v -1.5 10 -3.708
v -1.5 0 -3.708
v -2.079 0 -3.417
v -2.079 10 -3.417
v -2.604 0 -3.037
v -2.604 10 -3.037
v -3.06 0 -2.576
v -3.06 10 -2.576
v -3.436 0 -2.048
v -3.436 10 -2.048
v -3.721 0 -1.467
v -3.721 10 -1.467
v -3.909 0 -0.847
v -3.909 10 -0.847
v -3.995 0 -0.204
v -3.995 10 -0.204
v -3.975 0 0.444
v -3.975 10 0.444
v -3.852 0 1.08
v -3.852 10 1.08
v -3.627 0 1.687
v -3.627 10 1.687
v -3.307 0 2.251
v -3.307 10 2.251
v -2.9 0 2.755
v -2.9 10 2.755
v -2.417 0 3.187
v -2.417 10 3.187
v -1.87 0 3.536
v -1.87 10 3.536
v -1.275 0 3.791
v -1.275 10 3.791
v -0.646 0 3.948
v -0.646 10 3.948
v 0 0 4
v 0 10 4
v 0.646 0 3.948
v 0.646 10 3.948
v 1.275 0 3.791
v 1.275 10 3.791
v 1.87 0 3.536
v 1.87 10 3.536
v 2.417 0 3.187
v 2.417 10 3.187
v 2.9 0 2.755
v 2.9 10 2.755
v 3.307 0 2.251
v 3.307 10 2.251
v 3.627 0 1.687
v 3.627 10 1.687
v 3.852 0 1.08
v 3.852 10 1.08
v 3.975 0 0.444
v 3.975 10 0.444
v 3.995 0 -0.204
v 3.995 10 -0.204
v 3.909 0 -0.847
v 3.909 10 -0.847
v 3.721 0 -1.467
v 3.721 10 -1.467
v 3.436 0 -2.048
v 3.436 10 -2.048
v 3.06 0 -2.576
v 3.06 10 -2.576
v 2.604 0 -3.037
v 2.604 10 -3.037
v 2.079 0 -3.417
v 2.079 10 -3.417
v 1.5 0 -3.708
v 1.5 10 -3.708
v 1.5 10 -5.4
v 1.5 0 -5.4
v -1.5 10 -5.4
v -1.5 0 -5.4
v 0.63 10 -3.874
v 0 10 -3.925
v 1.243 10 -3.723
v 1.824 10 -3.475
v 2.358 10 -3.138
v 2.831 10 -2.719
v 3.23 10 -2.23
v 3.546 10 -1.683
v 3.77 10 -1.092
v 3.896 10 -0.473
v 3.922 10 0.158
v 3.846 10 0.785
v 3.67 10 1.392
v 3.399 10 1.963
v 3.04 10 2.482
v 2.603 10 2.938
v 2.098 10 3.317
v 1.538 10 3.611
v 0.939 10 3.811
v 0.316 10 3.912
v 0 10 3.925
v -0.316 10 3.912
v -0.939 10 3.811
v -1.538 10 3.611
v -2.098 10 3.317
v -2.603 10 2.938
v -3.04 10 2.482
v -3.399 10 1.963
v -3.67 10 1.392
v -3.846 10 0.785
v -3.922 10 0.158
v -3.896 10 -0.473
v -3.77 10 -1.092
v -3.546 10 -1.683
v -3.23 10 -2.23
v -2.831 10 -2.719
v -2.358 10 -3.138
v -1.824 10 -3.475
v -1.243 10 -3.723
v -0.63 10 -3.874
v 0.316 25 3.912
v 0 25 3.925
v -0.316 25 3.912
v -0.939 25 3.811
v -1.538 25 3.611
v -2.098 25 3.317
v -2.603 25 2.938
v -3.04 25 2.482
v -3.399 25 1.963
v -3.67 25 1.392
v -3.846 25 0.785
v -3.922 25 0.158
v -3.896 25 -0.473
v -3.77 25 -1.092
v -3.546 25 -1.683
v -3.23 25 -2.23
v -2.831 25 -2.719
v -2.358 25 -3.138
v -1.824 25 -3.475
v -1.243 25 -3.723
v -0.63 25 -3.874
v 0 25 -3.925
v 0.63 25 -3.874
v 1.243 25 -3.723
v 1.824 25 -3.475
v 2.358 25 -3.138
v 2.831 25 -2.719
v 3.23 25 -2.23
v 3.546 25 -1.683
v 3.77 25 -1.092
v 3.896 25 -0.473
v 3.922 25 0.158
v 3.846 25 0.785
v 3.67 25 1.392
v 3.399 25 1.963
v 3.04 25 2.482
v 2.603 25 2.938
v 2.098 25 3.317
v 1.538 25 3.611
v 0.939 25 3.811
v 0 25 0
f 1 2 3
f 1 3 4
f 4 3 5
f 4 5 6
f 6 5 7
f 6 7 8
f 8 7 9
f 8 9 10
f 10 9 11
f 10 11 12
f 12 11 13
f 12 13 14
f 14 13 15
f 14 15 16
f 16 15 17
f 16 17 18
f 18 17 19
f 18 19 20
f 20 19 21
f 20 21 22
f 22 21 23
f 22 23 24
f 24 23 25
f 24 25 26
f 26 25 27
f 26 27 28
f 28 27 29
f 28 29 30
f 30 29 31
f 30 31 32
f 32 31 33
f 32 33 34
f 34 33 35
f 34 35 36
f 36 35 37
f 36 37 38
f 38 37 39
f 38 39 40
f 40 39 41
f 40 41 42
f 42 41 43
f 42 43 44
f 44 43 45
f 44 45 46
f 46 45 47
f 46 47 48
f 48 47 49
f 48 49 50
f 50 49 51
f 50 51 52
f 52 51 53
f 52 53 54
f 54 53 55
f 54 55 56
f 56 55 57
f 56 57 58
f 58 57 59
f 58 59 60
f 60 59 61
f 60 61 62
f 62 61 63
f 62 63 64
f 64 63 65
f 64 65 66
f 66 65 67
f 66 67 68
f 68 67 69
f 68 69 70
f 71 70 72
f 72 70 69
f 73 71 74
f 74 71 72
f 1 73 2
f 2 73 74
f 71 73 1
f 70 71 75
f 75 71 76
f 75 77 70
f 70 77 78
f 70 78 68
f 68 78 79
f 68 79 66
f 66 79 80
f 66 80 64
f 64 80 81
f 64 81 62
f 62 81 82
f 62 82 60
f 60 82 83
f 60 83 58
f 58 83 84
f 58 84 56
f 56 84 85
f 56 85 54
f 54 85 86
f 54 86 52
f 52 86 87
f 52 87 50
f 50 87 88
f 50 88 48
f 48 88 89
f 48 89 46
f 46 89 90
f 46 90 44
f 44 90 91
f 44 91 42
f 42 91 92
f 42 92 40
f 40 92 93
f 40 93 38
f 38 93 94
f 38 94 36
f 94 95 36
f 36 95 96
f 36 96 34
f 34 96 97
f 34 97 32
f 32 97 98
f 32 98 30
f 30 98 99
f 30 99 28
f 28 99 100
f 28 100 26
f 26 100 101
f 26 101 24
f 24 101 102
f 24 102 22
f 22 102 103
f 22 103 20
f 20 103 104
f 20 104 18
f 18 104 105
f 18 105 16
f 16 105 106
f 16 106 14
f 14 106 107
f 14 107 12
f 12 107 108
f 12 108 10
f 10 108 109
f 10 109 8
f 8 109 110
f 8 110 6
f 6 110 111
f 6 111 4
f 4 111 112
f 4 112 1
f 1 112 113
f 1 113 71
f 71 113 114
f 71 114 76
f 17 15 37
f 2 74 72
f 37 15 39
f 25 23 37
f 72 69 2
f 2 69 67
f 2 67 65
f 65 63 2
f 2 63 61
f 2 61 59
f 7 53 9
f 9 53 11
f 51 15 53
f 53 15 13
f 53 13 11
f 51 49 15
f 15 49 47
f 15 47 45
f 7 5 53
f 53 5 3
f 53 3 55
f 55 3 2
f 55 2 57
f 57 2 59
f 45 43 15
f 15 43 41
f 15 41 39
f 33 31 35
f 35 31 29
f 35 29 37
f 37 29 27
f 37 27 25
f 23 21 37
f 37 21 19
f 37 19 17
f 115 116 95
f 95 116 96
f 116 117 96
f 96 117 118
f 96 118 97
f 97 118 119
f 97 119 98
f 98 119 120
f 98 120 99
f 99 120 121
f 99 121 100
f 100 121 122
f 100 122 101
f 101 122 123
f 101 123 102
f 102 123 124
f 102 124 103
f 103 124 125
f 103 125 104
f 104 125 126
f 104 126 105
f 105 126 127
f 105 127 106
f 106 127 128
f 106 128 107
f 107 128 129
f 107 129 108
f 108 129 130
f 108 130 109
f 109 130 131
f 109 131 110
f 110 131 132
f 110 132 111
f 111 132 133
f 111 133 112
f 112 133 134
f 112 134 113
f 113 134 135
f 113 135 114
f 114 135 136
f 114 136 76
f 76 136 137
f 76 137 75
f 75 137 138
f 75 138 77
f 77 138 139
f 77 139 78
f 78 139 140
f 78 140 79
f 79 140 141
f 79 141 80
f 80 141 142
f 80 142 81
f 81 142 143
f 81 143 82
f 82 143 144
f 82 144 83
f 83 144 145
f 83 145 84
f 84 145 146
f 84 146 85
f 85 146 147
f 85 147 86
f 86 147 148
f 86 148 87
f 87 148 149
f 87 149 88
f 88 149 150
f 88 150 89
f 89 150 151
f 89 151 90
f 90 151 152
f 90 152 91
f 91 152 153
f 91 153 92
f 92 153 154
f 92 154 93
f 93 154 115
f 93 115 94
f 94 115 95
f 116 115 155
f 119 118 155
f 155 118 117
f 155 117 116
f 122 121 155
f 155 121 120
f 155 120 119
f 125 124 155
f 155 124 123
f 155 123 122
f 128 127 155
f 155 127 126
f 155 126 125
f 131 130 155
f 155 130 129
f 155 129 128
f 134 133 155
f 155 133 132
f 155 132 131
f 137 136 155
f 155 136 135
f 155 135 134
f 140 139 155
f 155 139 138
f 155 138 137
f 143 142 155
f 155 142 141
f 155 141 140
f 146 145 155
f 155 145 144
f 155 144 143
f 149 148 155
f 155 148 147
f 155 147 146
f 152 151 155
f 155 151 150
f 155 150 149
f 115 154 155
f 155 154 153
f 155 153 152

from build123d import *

# Parameters (mm, degrees)
EXTRUDE_1_DEPTH = 10
SKETCH_3_R      = 3.925
EXTRUDE_2_DEPTH = 15


with BuildPart() as part:
    # 草图1 → 凸台-拉伸1 (new body)
    with BuildSketch(Plane(origin=(0, 0, 0), x_dir=(1, 0, 0), z_dir=(0, 1, 0))):
        with BuildLine():
            ThreePointArc((1.5, 3.708099244), (0, 4), (-1.5, 3.708099244))
            Line((-1.5, 3.708099244), (-1.5, 0))
            Line((-1.5, 0), (1.5, 0))
            Line((1.5, 0), (1.5, 3.708099244))
        make_face()
        with BuildLine():
            Line((-1.5, 0), (-1.5, 3.708099244))
            ThreePointArc((-1.5, 3.708099244), (-2.236067977, -3.31662479), (4, 0))
            ThreePointArc((4, 0), (3.31662479, 2.236067977), (1.5, 3.708099244))
            Line((1.5, 3.708099244), (1.5, 0))
            Line((1.5, 0), (-1.5, 0))
        make_face()
        with BuildLine():
            ThreePointArc((1.5, 3.708099244), (0, 4), (-1.5, 3.708099244))
            Line((-1.5, 3.708099244), (-1.5, 0))
            Line((-1.5, 0), (1.5, 0))
            Line((1.5, 0), (1.5, 3.708099244))
        make_face()
        with BuildLine():
            Line((-1.5, 0), (-1.5, 3.708099244))
            ThreePointArc((-1.5, 3.708099244), (-2.236067977, -3.31662479), (4, 0))
            ThreePointArc((4, 0), (3.31662479, 2.236067977), (1.5, 3.708099244))
            Line((1.5, 3.708099244), (1.5, 0))
            Line((1.5, 0), (-1.5, 0))
        make_face()
        with BuildLine():
            Line((1.5, 5.4), (-1.5, 5.4))
            Line((-1.5, 5.4), (-1.5, 3.708099244))
            ThreePointArc((-1.5, 3.708099244), (0, 4), (1.5, 3.708099244))
            Line((1.5, 3.708099244), (1.5, 5.4))
        make_face()
    extrude(amount=EXTRUDE_1_DEPTH)

    # 草图3 → 凸台-拉伸2 (add)
    with BuildSketch(Plane(origin=(0, 10, 0), x_dir=(1, 0, 0), z_dir=(0, 1, 0))):
        with Locations(Location((0, 0, 0), (0, 0, 270))):
            Circle(SKETCH_3_R)
    extrude(amount=EXTRUDE_2_DEPTH)


solid = part.part
